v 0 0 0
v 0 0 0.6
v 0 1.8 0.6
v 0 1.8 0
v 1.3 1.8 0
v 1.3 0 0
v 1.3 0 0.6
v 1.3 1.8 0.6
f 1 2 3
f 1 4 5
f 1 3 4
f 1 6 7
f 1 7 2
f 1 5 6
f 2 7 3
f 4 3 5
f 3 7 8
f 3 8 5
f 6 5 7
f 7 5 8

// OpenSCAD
/* Warning, this is a very basic generator with a lot of approximation 
input data : [UQFN, 2VX, 1.3x1.8x0.6mm, 10, , A, C04-00386A]
generated by com.zoubworld.electronics.cad.model3d.Basic
Date : Sun Feb 15 10:50:48 CET 2026
*/

//body
color("black")
translate([0,0,0])
cube([1.3,1.8,0.6], center=false);
